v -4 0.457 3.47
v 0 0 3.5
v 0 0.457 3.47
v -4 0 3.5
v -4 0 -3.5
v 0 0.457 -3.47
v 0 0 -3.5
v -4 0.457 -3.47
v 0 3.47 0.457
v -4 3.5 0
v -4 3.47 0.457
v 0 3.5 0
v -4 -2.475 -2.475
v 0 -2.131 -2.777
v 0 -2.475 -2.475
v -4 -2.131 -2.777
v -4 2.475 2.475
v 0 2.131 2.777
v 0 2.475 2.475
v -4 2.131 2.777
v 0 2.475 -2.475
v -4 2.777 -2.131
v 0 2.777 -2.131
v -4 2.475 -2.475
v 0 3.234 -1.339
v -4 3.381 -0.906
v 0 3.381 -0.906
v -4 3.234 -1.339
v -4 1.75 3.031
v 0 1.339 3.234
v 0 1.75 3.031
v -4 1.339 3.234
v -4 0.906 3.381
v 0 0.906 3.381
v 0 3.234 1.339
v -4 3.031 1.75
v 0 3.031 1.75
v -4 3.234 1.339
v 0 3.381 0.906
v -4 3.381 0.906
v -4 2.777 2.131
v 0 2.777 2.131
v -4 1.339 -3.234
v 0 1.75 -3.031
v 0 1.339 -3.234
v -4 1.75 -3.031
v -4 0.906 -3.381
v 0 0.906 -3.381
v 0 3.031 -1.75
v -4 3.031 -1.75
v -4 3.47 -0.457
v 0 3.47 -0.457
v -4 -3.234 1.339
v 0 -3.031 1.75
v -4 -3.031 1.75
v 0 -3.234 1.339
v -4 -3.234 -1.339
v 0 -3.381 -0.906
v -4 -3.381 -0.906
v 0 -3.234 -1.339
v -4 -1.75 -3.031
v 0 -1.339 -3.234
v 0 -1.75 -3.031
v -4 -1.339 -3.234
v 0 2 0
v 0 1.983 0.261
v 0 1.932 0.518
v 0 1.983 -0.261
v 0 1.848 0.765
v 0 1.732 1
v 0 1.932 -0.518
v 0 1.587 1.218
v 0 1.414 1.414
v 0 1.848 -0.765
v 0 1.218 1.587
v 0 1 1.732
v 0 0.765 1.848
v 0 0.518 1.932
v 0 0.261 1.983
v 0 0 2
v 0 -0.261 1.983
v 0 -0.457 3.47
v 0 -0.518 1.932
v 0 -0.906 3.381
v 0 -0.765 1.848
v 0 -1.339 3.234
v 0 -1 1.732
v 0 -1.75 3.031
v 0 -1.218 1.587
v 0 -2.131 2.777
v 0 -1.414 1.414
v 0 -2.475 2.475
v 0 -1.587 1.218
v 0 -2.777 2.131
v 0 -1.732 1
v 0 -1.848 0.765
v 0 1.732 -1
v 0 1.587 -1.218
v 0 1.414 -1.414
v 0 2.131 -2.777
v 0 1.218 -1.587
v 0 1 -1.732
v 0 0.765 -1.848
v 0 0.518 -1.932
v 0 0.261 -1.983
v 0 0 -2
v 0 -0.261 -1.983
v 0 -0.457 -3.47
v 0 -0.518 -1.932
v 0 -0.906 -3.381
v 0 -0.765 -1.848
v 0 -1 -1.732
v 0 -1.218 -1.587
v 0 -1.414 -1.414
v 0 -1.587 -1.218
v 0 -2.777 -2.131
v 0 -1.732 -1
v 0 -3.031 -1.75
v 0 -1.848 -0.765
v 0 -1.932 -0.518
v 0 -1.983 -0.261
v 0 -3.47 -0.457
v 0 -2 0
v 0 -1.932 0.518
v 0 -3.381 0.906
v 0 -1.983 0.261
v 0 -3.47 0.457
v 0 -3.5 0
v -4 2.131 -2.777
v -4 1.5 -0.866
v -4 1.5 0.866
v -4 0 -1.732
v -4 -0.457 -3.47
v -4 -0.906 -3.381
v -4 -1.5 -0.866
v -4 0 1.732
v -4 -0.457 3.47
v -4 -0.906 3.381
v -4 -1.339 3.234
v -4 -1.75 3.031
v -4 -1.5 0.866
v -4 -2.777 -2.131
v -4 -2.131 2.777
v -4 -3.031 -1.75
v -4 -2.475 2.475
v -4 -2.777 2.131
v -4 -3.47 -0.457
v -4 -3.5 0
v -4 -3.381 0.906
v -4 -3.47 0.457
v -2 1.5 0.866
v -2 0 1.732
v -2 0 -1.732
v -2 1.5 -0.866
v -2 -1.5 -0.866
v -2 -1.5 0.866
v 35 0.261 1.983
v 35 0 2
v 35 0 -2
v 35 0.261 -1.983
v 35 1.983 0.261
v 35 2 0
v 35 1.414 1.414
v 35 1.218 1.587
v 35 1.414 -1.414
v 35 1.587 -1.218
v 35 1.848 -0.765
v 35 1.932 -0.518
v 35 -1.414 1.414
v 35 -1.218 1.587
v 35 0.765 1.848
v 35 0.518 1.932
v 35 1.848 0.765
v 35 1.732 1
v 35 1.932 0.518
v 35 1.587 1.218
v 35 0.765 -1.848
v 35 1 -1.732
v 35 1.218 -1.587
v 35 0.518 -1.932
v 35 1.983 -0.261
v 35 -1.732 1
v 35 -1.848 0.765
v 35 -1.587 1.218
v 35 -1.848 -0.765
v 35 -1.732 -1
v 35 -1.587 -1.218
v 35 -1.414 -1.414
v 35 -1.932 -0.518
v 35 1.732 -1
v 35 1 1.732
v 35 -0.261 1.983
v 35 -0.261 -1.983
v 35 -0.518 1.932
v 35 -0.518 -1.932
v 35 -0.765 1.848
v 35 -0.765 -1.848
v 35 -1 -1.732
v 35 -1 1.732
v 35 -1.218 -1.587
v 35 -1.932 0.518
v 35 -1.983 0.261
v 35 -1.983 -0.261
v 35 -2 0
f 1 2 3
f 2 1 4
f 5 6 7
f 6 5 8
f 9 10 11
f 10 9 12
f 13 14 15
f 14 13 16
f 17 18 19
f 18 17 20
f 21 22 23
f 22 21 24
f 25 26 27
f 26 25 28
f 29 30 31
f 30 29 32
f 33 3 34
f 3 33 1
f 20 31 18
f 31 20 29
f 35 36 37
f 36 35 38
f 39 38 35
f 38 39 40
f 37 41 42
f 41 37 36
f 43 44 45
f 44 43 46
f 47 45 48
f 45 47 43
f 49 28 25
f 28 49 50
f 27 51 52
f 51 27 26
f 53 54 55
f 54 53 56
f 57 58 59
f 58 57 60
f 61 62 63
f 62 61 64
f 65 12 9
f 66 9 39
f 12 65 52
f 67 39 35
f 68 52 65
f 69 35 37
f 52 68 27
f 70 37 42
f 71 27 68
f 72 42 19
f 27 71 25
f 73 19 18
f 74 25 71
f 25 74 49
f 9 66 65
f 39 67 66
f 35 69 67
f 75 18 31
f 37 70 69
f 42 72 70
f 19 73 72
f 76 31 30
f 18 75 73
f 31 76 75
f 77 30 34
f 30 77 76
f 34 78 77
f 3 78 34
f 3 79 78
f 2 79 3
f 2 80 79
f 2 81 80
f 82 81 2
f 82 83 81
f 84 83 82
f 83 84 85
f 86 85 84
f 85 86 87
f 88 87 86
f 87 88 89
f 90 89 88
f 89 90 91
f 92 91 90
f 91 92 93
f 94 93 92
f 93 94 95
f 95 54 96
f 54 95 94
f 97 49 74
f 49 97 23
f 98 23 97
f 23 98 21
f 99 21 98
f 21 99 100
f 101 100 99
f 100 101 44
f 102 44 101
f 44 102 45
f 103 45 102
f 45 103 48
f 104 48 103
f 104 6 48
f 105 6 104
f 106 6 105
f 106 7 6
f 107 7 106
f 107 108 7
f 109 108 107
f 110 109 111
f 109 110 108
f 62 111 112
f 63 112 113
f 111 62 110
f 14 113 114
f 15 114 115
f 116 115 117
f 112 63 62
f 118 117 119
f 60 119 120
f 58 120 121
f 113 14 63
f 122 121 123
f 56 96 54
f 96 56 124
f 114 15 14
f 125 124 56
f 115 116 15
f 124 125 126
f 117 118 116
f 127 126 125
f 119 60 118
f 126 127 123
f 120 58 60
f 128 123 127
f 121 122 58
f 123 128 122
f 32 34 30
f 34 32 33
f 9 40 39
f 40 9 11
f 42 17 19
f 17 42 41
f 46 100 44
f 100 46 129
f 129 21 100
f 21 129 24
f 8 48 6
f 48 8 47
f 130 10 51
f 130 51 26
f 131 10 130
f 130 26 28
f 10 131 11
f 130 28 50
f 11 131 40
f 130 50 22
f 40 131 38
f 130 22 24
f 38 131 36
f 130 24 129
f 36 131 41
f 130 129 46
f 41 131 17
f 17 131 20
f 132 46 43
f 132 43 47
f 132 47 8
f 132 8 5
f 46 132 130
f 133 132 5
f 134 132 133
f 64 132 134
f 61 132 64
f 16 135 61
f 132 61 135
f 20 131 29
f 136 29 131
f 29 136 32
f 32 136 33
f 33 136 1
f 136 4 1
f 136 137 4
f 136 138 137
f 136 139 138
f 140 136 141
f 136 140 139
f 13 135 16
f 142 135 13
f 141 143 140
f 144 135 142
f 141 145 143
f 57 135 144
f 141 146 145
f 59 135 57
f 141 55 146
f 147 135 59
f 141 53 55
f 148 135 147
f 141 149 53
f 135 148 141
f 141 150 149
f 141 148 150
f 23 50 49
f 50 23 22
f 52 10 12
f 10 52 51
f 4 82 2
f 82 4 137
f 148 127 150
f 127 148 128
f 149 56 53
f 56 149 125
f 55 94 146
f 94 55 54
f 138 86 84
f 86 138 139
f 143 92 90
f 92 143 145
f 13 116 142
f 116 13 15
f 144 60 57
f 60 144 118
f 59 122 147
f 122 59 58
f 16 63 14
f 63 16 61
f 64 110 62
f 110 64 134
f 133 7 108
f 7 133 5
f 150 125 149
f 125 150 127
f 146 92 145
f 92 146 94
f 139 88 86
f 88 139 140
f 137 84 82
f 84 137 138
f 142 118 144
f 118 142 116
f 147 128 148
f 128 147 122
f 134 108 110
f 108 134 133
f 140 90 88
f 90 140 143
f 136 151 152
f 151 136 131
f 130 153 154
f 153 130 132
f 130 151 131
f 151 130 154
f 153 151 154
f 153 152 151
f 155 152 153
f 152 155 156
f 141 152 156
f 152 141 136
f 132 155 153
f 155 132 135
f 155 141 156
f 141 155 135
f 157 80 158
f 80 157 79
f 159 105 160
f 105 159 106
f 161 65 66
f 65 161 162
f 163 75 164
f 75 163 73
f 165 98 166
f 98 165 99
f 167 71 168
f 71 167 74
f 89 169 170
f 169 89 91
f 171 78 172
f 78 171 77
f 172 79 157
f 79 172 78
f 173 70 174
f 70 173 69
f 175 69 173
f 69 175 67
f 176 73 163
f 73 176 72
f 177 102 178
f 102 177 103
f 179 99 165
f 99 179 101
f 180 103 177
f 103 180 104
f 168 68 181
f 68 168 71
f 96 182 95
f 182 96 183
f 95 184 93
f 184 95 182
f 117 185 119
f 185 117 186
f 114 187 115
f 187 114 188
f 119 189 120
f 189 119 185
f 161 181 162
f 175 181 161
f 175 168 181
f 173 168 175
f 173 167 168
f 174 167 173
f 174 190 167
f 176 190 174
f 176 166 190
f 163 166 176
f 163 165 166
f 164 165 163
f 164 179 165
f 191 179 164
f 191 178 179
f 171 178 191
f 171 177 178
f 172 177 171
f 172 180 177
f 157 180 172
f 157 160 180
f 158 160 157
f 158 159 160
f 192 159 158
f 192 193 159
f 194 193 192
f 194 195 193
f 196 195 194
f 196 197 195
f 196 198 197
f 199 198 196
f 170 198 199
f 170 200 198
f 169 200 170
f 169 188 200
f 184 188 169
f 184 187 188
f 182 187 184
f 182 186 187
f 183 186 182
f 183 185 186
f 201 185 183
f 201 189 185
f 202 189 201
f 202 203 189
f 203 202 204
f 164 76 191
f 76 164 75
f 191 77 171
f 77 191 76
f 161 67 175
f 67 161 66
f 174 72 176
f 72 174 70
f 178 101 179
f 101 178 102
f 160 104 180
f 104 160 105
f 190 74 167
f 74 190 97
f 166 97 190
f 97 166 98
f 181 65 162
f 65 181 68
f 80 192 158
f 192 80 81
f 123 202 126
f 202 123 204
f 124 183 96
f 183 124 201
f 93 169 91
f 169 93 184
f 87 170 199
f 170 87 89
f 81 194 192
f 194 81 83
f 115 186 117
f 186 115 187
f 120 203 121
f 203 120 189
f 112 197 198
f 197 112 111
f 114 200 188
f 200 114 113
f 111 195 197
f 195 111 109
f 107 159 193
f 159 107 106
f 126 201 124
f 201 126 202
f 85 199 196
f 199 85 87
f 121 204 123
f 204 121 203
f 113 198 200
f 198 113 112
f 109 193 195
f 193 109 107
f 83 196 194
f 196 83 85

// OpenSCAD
// file: ../../../lib/nutsnbolts/data-access.scad
// Norm Nuts and Bolts - a OpenSCAD library
// Copyright (C) 2012  Johannes Kneer

// This program is free software: you can redistribute it and/or modify
// it under the terms of the GNU General Public License as published by
// the Free Software Foundation, either version 3 of the License, or
// (at your option) any later version.

// This program is distributed in the hope that it will be useful,
// but WITHOUT ANY WARRANTY; without even the implied warranty of
// MERCHANTABILITY or FITNESS FOR A PARTICULAR PURPOSE.  See the
// GNU General Public License for more details.

// You should have received a copy of the GNU General Public License
// along with this program.  If not, see <http://www.gnu.org/licenses/>.


// DATABASE ACCESS FUNCTIONS AND CONSTANTS



// == CONSTANTS ==

// screw table access keys
_NB_S_DESC            = 0;
_NB_S_FAMKEY			    = 1;
_NB_S_LENGTH          = 2;
_NB_S_NOTHREAD_LENGTH = 3;

_NB_F_DESC			      = 0;
_NB_F_OUTER_DIA       = 1;
_NB_F_INNER_DIA       = 2;
_NB_F_LEAD            = 3;
_NB_F_KEY             = 4;
_NB_F_KEY_DEPTH       = 5;
_NB_F_HEAD_HEIGHT     = 6;
_NB_F_HEAD_DIA        = 7;
_NB_F_NUT_KEY         = 8;
_NB_F_NUT_HEIGHT      = 9;
_NB_F_PITCH_FINE      = 10;
_NB_F_PITCH_MEDIUM    = 11;
_NB_F_PITCH_COARSE    = 12;


// == FUNCTIONS ==

// _get_screw("descriptor")   with descriptor = M8x25
//   find the line for a general object in the data matrix

function _get_screw(n) = data_screw[search([n], data_screw)[0]];
function _get_screw_fam(n) = data_screw_fam[search([_get_screw(n)[_NB_S_FAMKEY]], data_screw_fam)[0]];

function _get_fam(n) = data_screw_fam[search([n], data_screw_fam)[0]];


// _get_XXXXX("descriptor") functions
// find a single property in the database

function _get_desc(n)        = _get_screw(n)[_NB_S_DESC];
function _get_famkey(n)         = _get_screw(n)[_NB_S_FAMKEY];
function _get_length(n)      = _get_screw(n)[_NB_S_LENGTH];
function _get_nt_length(n)   = _get_screw(n)[_NB_S_NOTHREAD_LENGTH];

function _get_outer_dia(n)   = _get_screw_fam(n)[_NB_F_OUTER_DIA];
function _get_inner_dia(n)   = _get_screw_fam(n)[_NB_F_INNER_DIA];
function _get_lead(n)        = _get_screw_fam(n)[_NB_F_LEAD];
function _get_head_height(n) = _get_screw_fam(n)[_NB_F_HEAD_HEIGHT];
function _get_head_dia(n)    = _get_screw_fam(n)[_NB_F_HEAD_DIA];
function _get_nut_key(n)     = _get_screw_fam(n)[_NB_F_NUT_KEY];
function _get_nut_height(n)  = _get_screw_fam(n)[_NB_F_NUT_HEIGHT];
function _get_fine_pitch(n)  = _get_screw_fam(n)[_NB_F_PITCH_FINE];
function _get_medium_pitch(n)  = _get_screw_fam(n)[_NB_F_PITCH_MEDIUM];
function _get_coarse_pitch(n)  = _get_screw_fam(n)[_NB_F_PITCH_COARSE];
// main file
/**********************************************************************************************************************
 **
 ** parts/vitamins/screw_M4x35.scad
 **
 ** This file renders a screw of the dimensions specified by the file name.
 **
 **********************************************************************************************************************/

include <../../../lib/nutsnbolts/cyl_head_bolt.scad>;

$fn = 48;
rotate([0, -90, 0])
	screw("M4x35"); 
